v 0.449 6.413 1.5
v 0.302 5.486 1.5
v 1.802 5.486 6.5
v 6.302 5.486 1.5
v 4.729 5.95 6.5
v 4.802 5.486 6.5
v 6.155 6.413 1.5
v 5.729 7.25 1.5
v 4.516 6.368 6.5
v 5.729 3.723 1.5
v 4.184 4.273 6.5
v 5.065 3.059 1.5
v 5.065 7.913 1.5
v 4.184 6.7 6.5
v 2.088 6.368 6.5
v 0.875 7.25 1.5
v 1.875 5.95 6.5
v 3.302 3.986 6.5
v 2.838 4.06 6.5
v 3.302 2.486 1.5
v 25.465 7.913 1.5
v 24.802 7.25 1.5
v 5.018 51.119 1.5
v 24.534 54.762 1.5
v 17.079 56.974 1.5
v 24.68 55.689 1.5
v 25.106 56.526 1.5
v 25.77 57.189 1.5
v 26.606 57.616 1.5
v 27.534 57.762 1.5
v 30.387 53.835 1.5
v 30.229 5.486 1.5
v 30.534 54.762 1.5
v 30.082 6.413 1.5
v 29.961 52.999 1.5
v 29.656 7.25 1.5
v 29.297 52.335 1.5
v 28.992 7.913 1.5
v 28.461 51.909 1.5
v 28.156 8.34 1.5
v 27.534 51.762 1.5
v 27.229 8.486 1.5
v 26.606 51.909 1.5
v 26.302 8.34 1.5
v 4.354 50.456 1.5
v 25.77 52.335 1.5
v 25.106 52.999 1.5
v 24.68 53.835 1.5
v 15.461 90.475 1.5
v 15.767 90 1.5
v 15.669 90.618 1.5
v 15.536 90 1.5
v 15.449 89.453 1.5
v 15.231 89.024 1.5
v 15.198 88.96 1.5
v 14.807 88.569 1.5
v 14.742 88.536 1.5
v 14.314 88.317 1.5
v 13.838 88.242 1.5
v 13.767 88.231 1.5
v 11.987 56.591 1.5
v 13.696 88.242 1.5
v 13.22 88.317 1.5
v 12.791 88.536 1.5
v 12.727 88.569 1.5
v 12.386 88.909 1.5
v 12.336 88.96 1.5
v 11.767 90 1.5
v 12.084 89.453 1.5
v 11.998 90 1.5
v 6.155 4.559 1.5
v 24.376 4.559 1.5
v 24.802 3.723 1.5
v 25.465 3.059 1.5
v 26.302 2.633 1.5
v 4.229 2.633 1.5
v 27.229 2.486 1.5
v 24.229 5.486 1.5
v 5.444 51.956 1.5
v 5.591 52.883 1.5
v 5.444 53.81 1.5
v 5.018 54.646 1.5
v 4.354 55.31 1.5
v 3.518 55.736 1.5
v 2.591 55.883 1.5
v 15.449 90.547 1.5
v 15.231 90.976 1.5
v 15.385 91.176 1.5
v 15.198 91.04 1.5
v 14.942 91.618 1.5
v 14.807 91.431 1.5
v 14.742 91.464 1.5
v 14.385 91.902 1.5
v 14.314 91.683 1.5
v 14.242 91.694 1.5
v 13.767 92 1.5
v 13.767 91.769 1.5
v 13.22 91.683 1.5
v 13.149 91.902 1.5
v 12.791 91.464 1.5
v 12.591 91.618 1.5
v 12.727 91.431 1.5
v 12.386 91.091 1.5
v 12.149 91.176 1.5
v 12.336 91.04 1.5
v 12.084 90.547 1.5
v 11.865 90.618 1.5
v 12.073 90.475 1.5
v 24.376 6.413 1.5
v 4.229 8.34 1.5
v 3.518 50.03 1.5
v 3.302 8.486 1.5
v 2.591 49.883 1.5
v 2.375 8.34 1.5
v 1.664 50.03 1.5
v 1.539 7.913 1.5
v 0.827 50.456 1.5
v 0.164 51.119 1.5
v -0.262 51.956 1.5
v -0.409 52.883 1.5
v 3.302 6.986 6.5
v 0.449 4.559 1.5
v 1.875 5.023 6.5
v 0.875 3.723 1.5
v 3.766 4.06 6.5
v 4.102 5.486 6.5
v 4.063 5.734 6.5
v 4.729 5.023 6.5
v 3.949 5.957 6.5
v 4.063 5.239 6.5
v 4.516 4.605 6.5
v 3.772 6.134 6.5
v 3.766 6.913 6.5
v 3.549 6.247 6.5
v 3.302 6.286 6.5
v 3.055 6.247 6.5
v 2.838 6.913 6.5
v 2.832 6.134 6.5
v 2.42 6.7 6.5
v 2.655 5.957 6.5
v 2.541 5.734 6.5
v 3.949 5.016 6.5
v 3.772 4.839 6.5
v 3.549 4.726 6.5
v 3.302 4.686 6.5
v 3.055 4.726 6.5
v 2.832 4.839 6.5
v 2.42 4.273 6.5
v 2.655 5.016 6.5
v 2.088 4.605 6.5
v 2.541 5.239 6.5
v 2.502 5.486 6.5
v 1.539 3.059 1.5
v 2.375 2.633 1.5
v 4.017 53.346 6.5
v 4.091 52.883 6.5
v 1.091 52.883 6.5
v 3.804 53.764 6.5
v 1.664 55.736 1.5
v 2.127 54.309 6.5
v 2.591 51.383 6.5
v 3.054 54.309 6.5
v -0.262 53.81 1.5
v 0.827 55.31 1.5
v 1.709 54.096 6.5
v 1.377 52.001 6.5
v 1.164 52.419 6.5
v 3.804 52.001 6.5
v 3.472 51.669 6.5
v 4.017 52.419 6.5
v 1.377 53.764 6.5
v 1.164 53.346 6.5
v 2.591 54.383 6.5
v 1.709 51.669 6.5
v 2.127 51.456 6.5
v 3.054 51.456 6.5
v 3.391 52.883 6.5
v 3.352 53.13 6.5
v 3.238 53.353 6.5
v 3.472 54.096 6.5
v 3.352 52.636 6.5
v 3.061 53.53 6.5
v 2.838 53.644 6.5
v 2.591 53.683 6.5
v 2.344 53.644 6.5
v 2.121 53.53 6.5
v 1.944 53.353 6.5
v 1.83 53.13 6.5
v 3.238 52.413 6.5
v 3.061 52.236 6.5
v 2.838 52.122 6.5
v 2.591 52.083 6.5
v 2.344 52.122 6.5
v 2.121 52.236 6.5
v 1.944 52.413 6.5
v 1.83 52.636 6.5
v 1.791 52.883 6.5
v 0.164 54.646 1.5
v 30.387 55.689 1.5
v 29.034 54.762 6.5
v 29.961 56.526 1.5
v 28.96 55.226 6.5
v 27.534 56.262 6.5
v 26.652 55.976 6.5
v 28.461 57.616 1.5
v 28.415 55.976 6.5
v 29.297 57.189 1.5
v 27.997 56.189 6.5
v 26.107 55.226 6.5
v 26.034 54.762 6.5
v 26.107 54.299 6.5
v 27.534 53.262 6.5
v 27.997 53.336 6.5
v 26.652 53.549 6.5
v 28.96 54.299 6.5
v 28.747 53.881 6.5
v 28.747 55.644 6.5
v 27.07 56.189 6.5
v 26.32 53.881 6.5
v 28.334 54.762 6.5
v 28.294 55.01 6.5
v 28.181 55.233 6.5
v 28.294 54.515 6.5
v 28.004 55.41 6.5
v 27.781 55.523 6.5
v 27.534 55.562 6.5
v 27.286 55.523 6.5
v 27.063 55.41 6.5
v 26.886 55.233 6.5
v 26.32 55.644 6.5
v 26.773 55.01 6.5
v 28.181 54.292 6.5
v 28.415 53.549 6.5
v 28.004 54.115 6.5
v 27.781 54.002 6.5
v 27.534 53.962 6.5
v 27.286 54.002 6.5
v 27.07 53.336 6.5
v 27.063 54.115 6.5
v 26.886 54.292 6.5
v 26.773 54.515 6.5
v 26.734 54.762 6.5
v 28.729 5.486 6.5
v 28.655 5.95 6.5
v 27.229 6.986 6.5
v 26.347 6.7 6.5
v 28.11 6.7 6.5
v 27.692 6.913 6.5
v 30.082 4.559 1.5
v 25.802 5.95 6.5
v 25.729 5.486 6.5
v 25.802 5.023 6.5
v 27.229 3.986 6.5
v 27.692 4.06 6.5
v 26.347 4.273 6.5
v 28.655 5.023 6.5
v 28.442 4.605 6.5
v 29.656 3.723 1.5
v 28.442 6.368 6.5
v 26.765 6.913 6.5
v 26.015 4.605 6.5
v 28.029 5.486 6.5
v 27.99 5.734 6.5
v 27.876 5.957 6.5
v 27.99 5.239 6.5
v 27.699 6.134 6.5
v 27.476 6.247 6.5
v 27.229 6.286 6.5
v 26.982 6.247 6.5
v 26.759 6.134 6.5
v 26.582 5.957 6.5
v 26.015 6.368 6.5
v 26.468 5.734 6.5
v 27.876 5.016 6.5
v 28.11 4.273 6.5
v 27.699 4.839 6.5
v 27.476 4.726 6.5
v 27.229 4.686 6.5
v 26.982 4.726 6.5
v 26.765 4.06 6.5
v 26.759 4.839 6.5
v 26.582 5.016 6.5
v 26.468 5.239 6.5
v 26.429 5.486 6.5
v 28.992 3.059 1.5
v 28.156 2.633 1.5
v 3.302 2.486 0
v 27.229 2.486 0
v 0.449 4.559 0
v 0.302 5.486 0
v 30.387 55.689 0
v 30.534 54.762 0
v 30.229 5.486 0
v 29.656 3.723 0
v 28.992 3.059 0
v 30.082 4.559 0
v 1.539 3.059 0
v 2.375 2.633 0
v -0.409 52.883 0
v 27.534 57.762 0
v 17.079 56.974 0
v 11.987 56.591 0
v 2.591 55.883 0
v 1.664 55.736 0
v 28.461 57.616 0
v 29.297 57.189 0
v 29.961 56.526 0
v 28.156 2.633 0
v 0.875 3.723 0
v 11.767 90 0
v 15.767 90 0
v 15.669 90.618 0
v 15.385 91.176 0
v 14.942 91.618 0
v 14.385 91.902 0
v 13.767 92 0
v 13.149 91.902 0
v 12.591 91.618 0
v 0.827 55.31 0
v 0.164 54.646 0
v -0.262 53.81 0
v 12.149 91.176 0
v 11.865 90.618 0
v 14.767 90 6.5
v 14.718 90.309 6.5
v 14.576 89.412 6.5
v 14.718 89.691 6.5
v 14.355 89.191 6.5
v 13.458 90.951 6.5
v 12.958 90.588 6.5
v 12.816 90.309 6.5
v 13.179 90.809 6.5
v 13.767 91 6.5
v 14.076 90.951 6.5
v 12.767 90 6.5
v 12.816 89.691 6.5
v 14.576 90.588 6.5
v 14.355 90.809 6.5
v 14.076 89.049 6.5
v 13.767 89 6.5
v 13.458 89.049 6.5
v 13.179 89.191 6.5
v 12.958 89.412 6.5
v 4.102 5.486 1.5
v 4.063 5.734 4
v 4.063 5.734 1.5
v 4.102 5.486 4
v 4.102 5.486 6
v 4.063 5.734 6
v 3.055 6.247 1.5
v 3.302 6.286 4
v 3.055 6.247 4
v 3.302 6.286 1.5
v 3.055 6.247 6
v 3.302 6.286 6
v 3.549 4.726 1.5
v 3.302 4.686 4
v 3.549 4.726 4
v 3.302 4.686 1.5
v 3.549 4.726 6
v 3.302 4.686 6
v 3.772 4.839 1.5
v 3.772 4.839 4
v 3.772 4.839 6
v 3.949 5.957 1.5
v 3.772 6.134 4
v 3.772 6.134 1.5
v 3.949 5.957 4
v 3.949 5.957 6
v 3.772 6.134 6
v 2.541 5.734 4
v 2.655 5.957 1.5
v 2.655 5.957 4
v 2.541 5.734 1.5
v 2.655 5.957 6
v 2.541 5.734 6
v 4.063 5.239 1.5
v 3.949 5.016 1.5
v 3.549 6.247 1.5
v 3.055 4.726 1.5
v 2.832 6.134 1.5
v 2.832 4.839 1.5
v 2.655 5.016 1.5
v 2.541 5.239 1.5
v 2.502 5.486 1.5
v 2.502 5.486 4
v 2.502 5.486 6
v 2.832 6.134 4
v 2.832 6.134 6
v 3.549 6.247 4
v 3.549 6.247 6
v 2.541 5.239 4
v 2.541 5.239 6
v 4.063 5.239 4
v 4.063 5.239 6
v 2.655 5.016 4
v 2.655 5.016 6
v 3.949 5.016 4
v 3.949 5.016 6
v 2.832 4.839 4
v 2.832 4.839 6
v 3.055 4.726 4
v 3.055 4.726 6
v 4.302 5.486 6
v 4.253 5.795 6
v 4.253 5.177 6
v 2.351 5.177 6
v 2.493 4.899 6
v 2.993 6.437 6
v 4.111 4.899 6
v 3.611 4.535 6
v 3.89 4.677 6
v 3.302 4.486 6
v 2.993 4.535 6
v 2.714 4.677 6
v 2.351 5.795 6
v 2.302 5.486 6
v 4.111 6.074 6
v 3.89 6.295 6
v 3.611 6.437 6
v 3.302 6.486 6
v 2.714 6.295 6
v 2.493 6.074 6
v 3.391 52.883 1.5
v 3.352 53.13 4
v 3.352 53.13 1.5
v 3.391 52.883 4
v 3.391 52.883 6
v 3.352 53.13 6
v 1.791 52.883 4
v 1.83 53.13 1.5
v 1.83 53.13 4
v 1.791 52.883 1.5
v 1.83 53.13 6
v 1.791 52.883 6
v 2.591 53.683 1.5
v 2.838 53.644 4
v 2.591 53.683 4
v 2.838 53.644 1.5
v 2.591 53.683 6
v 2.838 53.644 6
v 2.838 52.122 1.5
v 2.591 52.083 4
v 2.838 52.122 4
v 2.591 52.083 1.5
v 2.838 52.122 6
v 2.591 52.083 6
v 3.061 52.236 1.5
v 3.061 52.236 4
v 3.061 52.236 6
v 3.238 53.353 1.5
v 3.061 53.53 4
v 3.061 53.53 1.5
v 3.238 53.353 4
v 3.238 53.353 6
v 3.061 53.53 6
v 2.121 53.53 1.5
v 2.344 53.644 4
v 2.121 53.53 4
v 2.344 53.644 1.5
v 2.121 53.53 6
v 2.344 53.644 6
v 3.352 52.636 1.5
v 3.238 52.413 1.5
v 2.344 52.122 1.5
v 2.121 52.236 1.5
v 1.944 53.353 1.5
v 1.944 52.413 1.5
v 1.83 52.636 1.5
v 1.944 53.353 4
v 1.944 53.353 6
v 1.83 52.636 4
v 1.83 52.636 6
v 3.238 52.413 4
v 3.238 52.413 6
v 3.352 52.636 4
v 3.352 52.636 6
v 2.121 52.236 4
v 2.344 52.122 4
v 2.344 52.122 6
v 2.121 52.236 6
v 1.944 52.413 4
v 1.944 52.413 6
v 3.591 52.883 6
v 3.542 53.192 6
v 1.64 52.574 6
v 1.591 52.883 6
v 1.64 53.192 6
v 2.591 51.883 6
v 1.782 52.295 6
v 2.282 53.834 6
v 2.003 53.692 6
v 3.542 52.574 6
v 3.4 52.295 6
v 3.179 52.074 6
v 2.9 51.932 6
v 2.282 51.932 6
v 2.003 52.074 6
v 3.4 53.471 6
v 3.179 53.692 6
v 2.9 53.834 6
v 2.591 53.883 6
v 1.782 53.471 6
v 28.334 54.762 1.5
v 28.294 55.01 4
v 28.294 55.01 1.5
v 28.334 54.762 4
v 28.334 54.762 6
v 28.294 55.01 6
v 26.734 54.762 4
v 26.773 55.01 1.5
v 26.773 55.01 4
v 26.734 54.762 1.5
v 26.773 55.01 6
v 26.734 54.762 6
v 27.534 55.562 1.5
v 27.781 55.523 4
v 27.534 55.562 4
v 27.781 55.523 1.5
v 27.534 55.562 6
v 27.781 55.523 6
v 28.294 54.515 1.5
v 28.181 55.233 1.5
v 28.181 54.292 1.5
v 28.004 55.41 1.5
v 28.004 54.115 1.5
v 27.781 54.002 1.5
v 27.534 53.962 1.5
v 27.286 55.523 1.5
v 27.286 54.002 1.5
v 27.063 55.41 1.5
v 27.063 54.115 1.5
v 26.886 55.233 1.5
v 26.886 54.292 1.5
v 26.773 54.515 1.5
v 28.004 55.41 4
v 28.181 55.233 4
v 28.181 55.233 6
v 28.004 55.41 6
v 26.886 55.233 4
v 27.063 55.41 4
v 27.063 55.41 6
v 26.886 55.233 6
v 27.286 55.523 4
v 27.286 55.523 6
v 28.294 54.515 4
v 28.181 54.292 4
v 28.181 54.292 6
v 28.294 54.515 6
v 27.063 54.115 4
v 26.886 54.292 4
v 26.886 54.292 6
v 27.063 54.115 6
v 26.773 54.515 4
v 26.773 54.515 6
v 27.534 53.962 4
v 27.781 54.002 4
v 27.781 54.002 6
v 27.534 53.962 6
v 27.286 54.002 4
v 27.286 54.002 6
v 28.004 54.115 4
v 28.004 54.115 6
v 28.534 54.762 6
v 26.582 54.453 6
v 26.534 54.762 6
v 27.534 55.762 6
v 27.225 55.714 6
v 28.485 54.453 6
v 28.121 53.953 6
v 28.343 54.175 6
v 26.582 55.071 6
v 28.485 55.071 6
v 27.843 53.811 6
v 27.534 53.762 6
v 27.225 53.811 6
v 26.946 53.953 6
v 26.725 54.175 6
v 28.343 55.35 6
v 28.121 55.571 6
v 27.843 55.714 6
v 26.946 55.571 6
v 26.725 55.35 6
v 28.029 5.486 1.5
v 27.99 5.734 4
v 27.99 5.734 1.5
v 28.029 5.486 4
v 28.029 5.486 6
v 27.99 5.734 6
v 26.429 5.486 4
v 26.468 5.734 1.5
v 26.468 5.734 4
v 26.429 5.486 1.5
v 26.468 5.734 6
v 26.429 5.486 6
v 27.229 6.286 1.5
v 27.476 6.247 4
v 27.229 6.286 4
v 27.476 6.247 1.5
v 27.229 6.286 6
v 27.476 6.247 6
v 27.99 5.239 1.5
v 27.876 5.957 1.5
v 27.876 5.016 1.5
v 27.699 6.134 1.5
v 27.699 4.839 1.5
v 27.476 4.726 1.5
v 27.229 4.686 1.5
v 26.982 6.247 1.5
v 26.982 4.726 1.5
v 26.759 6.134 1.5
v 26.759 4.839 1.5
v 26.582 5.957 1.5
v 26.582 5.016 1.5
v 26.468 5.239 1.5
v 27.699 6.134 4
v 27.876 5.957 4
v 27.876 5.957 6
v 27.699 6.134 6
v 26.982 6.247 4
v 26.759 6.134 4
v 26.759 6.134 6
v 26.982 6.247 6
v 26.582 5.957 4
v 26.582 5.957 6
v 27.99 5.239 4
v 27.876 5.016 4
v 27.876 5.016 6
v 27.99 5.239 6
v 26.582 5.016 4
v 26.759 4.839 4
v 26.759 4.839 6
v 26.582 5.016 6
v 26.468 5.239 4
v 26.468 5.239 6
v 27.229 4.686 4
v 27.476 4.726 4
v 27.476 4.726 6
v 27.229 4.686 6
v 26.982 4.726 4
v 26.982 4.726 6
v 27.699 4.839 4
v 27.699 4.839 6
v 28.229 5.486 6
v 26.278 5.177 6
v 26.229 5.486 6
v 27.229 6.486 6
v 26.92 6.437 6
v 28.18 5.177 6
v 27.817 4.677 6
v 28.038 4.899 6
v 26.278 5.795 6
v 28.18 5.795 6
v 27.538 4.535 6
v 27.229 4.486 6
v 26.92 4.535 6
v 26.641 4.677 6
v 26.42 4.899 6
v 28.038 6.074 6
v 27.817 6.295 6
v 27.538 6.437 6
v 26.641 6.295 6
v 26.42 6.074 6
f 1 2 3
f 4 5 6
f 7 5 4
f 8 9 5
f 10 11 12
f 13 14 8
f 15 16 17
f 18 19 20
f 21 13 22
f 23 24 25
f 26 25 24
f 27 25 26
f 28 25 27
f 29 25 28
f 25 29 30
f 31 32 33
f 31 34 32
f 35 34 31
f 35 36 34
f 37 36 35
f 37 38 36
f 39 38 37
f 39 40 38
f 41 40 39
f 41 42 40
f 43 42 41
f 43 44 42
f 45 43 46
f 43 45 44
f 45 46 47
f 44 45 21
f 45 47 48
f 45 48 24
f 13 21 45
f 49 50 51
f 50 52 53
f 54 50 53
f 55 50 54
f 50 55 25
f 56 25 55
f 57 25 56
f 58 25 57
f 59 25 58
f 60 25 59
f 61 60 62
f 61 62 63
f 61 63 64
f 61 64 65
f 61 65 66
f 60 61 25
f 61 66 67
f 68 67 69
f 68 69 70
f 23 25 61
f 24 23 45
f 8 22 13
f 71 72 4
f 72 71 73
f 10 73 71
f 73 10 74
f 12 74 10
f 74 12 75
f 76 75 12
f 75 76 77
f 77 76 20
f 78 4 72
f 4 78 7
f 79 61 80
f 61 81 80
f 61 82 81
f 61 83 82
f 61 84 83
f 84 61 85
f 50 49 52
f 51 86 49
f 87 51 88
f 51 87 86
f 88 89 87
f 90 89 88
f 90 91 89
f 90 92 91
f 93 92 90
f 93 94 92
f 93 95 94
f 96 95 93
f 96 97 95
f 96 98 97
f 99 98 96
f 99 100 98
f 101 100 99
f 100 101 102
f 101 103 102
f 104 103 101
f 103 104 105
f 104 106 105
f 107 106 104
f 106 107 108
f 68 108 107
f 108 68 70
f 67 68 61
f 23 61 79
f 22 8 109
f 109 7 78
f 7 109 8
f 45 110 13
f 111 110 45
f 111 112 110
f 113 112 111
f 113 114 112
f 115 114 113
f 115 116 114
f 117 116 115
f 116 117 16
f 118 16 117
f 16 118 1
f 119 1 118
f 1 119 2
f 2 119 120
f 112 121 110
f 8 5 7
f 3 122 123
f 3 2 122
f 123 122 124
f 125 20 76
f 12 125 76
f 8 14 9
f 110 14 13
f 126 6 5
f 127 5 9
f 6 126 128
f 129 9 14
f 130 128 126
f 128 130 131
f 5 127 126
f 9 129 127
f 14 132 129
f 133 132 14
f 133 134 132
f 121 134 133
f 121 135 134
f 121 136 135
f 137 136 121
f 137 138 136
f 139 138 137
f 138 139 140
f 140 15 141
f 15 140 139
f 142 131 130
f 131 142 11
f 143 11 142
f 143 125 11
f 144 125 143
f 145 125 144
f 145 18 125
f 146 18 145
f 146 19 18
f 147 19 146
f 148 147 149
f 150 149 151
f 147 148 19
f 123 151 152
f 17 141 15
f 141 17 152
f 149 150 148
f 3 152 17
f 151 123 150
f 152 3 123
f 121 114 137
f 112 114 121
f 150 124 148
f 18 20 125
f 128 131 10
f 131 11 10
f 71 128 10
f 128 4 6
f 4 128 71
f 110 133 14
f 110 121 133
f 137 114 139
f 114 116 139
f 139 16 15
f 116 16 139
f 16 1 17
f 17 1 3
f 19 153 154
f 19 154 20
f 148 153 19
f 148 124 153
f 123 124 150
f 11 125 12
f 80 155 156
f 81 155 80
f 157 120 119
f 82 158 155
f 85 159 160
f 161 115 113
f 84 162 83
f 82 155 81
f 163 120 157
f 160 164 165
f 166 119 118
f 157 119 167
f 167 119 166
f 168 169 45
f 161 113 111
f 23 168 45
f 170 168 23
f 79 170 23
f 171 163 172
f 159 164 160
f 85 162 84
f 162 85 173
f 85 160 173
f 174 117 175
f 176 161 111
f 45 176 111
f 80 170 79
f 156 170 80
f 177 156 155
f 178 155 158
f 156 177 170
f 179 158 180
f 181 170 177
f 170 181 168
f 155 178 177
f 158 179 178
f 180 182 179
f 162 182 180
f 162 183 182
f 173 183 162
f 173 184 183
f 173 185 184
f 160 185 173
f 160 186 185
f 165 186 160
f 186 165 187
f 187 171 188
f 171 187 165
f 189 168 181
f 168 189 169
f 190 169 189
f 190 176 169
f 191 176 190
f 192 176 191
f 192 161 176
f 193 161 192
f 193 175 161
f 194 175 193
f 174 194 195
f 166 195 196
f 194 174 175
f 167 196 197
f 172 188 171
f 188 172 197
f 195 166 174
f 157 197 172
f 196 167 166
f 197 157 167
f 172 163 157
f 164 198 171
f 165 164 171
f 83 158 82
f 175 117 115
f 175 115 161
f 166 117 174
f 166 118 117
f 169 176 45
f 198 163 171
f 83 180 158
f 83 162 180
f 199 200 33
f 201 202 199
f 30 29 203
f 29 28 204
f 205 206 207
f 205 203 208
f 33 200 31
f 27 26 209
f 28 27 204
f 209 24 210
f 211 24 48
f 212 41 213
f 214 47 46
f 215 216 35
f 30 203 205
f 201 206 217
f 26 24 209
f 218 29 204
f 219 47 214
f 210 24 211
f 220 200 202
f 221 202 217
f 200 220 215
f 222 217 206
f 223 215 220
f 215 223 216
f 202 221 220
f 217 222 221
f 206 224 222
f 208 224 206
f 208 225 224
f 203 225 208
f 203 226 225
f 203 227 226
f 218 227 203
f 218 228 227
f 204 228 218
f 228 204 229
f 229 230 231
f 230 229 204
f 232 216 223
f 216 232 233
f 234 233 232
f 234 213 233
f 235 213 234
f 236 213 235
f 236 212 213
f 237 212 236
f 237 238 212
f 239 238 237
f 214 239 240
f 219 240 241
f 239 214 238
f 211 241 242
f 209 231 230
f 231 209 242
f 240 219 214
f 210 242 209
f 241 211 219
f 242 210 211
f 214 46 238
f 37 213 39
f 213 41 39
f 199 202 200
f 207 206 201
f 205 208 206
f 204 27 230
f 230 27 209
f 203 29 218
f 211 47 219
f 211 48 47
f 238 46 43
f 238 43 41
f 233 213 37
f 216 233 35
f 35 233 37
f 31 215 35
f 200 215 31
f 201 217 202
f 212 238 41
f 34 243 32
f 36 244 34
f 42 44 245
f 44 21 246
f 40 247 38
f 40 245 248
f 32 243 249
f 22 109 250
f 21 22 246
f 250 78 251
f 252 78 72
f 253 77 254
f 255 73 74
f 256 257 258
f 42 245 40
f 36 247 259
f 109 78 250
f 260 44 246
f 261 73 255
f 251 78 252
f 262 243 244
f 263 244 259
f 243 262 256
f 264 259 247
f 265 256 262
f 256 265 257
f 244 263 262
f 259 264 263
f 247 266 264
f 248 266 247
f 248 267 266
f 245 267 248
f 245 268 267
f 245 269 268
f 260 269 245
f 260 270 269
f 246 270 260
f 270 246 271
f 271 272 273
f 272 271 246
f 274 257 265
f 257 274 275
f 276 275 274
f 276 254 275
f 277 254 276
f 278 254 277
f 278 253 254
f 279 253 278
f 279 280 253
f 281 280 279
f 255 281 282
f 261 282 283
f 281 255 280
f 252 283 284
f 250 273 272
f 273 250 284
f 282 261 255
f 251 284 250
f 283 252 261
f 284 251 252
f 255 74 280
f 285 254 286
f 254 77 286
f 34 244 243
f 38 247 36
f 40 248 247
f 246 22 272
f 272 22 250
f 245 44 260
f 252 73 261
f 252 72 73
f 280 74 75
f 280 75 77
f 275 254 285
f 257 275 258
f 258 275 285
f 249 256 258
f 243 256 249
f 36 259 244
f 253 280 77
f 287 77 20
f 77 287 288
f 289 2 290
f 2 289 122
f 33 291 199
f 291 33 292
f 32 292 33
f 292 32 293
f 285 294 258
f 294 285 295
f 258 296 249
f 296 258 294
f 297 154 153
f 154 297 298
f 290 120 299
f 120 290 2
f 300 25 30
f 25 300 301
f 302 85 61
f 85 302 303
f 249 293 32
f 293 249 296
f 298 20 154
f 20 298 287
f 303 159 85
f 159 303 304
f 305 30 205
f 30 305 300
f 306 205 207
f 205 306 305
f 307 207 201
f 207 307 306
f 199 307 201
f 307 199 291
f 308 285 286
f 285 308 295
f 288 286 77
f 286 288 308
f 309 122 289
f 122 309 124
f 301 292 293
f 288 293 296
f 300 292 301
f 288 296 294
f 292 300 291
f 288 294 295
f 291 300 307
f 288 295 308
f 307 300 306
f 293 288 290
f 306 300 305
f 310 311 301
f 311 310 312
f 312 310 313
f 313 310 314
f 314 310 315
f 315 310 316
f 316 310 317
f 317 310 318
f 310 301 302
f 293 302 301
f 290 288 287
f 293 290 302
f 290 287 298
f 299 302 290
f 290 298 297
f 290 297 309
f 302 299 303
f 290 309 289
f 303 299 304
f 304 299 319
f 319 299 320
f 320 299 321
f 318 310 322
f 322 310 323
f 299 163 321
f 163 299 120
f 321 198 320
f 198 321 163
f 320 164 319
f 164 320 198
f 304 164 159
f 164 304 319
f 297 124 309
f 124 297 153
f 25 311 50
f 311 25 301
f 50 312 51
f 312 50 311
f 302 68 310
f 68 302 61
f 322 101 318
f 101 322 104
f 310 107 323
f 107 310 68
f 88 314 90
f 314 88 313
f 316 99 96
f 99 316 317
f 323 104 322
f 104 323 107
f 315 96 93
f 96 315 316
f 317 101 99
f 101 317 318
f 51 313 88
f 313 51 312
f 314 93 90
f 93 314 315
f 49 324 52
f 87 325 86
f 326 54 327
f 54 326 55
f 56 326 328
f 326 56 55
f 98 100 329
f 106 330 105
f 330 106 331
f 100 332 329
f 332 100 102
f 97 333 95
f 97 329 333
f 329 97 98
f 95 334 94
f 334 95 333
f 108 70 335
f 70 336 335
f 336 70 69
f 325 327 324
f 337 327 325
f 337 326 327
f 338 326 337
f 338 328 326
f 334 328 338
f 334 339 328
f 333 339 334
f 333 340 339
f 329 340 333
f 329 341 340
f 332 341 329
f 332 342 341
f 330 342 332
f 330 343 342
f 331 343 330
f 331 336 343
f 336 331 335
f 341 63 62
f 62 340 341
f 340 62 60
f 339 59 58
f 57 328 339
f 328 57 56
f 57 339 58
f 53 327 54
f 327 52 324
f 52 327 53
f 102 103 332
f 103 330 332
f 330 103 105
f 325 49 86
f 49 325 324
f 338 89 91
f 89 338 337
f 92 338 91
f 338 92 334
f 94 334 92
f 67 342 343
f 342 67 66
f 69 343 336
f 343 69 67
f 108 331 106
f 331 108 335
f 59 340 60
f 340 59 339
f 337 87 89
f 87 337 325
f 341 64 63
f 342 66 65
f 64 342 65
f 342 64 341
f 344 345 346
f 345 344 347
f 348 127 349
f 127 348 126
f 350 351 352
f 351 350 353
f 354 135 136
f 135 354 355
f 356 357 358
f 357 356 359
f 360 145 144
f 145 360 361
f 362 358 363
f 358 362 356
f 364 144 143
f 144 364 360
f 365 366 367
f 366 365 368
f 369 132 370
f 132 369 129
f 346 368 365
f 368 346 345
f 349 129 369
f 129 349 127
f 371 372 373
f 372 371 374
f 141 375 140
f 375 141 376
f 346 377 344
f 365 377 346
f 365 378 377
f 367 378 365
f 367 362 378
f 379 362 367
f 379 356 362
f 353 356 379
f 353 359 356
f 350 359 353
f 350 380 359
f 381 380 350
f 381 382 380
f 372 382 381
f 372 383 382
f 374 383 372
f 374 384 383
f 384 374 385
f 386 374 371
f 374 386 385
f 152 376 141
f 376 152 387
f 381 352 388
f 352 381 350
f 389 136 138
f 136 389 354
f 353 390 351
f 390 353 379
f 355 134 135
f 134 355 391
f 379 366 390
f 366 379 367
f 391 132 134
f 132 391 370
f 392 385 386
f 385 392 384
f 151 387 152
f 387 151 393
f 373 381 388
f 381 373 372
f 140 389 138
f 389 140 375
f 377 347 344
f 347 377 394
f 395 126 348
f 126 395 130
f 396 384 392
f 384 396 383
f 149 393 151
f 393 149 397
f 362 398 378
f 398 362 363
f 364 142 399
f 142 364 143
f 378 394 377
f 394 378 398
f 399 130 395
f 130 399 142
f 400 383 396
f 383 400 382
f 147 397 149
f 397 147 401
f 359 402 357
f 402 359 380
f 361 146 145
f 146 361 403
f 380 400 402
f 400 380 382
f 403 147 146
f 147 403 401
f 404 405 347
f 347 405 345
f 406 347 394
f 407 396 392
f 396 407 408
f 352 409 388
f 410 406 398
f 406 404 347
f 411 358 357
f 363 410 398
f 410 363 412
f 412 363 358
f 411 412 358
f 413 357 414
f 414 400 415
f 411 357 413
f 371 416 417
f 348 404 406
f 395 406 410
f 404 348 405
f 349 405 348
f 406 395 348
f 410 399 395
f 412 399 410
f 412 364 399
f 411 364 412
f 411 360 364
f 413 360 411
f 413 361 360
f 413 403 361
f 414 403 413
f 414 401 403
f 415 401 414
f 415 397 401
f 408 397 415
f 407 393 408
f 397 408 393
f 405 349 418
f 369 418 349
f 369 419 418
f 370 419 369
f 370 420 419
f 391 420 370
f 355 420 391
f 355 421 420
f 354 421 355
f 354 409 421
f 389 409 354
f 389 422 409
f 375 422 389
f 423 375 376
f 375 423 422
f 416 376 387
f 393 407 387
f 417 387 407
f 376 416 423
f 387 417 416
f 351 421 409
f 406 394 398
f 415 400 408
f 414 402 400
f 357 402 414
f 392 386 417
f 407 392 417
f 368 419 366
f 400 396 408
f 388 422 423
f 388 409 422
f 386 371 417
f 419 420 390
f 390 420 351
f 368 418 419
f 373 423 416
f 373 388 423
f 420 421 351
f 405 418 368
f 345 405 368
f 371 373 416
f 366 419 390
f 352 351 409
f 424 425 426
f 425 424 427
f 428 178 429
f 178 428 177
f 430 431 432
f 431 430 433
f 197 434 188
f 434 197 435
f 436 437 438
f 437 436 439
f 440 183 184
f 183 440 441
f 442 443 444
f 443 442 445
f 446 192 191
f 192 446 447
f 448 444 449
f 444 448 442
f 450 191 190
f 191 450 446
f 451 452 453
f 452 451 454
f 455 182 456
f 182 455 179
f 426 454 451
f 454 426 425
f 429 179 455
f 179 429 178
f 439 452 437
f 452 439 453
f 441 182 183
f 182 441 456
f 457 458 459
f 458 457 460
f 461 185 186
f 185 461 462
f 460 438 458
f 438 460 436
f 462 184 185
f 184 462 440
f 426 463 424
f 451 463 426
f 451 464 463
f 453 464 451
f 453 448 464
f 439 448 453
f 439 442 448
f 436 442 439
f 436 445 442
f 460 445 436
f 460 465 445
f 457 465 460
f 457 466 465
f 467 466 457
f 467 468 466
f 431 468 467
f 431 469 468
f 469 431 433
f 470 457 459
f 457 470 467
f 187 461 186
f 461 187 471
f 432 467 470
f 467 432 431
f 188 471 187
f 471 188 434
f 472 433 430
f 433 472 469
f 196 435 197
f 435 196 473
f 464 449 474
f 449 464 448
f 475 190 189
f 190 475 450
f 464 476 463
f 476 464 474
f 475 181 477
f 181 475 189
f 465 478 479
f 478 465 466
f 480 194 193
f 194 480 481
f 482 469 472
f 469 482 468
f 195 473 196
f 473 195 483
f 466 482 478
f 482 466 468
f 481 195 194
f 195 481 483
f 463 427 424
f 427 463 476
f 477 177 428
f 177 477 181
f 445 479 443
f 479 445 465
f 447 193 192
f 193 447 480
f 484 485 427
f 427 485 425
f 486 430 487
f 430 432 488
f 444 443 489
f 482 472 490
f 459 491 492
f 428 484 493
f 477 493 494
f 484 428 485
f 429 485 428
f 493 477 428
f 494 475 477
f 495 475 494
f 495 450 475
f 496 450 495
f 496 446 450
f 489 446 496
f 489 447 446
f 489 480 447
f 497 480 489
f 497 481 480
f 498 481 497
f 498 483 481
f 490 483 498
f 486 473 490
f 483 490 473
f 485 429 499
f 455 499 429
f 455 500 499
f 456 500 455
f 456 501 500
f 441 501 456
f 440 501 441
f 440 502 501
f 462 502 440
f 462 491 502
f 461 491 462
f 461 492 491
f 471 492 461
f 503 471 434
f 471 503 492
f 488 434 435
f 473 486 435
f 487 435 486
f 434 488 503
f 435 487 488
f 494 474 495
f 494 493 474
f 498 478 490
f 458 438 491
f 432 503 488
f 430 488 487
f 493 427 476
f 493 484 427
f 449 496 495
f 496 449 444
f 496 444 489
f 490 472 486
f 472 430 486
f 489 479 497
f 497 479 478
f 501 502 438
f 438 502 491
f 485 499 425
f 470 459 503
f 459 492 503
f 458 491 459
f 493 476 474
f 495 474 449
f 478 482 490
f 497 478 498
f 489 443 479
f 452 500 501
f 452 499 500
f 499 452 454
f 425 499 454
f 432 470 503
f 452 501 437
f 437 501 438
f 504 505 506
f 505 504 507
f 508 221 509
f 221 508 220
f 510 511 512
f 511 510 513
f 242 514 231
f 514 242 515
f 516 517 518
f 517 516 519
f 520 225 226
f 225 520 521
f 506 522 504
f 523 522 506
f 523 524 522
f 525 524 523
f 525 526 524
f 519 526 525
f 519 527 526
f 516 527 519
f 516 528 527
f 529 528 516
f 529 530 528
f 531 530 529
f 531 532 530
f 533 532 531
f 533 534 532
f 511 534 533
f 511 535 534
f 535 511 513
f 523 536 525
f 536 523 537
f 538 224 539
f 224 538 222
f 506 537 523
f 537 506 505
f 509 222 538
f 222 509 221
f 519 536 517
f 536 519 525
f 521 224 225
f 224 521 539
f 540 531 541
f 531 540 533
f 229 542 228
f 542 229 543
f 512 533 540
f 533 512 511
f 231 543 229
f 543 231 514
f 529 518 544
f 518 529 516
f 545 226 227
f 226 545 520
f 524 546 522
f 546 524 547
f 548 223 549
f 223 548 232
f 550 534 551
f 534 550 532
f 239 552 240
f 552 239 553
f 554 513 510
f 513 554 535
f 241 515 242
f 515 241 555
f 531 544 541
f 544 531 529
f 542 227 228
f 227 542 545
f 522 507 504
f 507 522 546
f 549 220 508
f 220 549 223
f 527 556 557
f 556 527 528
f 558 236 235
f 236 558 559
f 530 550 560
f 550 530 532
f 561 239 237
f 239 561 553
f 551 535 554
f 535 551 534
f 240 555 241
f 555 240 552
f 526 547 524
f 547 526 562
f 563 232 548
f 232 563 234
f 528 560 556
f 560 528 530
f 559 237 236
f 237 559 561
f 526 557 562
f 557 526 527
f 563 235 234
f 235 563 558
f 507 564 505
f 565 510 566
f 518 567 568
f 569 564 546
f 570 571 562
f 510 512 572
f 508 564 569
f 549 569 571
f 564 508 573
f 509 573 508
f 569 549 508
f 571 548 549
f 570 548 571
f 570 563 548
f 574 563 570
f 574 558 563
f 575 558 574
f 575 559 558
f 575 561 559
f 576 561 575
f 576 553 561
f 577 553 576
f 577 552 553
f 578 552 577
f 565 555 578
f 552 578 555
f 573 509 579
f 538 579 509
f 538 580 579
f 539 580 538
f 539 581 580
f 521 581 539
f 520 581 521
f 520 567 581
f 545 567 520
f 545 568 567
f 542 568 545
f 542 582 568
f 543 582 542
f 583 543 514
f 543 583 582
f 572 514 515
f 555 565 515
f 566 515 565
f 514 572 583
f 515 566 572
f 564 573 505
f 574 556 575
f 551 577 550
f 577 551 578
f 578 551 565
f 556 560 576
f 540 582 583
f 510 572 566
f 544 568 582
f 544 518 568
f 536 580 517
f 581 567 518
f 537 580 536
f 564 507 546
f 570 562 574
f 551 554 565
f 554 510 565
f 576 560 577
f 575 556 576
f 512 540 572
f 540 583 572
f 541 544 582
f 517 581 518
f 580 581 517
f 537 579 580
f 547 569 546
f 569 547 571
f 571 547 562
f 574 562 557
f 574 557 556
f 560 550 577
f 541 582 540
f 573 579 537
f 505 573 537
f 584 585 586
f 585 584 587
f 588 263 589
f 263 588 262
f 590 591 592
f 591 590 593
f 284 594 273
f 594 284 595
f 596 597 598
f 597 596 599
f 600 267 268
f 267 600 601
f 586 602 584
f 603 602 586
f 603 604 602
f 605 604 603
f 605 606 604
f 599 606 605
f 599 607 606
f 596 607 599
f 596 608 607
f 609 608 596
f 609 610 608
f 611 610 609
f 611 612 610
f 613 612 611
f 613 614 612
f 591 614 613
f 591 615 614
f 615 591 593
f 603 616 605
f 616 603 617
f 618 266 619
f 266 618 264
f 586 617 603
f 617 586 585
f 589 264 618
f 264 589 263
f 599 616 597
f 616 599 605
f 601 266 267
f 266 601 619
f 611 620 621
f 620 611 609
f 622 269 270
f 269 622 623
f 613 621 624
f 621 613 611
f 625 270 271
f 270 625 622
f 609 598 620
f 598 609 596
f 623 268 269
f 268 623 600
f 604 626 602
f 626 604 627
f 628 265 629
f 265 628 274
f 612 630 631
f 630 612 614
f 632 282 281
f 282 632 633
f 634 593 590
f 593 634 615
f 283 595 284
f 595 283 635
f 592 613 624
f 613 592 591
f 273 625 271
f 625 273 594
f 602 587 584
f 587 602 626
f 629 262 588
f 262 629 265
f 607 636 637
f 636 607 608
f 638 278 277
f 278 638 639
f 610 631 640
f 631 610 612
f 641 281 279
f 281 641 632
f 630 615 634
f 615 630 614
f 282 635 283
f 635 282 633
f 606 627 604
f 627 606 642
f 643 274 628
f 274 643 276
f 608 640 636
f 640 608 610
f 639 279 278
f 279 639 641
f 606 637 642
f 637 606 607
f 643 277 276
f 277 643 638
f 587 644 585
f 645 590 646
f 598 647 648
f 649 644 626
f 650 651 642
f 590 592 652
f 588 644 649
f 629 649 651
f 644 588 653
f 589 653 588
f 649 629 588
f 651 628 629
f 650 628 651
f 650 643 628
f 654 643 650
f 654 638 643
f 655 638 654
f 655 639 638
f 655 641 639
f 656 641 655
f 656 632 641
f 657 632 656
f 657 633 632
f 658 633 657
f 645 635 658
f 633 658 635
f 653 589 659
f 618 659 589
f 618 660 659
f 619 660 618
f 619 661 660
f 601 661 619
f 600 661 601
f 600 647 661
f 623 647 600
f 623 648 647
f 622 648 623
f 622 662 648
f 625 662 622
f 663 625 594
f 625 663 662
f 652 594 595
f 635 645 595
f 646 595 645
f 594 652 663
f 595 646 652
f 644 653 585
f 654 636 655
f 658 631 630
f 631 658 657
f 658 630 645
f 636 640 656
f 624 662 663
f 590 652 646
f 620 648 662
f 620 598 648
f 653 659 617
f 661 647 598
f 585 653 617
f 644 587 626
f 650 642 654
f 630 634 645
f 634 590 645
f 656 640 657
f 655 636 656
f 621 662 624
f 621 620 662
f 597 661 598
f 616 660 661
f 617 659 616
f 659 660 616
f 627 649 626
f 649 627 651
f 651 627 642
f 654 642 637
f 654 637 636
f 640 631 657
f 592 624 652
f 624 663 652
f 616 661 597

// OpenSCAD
/*
Customizable Soldering Jig For Soldering PCBs With Alignment Holes
Author: Brian Khuu (2019)

If you use alignment pins in your project to help align your castellation modules with your PCB, you may find this useful.

Defaults below assumes you are using a 1mm alignment pins.

*/
$fn=20;

/* Overall */

// Tolerance
tol=0.6;

// Base Thickness
base_thickness=1.5;

/* Alignment Pin */

// Diameter of the alignment pin
CONFIG_pindia=1;

// Outer Diameter of the alignment pin
CONFIG_pindiaouter=3;

// Alignment Pin bottom flange Depth
CONFIG_pindepth=5;

/* Alignment Pins and Non Alignment Pins */

// Alignment Pins Positions
align_pin_pos_entries = [
[3.302   , 5.4864 ],
[2.5908  , 52.8828],
[27.5336 , 54.7624],
[27.2288 , 5.4864 ]
];

// Non Alignment Pins Positions
non_alignment_pin_pos_vec = [
//[27.5336/2 , 100 ],
[27.5336/2 , 90  ]
];

/* Calc */
pindia      = CONFIG_pindia      + tol;
pindiaouter = CONFIG_pindiaouter      ;
pindepth = CONFIG_pindepth      ;

// https://en.wikibooks.org/wiki/OpenSCAD_User_Manual/Tips_and_Tricks#Add_all_values_in_a_list
function add(v, i = 0, r = 0) = i < len(v) ? add(v, i + 1, r + v[i]) : r;

difference()
{
  union()
  {
    /* Alignment Pins */
    hull()
    for(pin_pos = align_pin_pos_entries)
    {
      translate([pin_pos[0], pin_pos[1], 0]) 
        cylinder(r=pindiaouter, base_thickness);
    }

    for(pin_pos = align_pin_pos_entries)
    {
      translate([pin_pos[0], pin_pos[1],  base_thickness]) 
        cylinder(r1=pindiaouter, r2=pindiaouter/2, pindepth);
    }

    /* Non Alignment Pins */
    hull()
    {
      sumx=add( [ for(pin_pos = align_pin_pos_entries)  pin_pos[0] ] );
      sumy=add( [ for(pin_pos = align_pin_pos_entries)  pin_pos[1] ] );
      translate([sumx/len(align_pin_pos_entries), sumy/len(align_pin_pos_entries), 0])
        cylinder(r=pindiaouter, base_thickness);

      for(pin_pos = non_alignment_pin_pos_vec)
      {
        translate([pin_pos[0], pin_pos[1],  0]) cylinder(r=2, base_thickness);
      }
    }

    for(pin_pos = non_alignment_pin_pos_vec)
    {
      translate([pin_pos[0], pin_pos[1],  0]) cylinder(r1=2, r2=1, base_thickness+pindepth);
    }
  }

  /* Holes for the Alignment Pins*/
  for(pin_pos = align_pin_pos_entries)
  {
    translate([pin_pos[0], pin_pos[1], base_thickness]) 
      cylinder(r=pindia/2, base_thickness+100);
    translate([pin_pos[0], pin_pos[1], pindepth-1]) 
      cylinder(r1=pindia/2, r2=pindia/2 + 0.2, 2);
  }
}
